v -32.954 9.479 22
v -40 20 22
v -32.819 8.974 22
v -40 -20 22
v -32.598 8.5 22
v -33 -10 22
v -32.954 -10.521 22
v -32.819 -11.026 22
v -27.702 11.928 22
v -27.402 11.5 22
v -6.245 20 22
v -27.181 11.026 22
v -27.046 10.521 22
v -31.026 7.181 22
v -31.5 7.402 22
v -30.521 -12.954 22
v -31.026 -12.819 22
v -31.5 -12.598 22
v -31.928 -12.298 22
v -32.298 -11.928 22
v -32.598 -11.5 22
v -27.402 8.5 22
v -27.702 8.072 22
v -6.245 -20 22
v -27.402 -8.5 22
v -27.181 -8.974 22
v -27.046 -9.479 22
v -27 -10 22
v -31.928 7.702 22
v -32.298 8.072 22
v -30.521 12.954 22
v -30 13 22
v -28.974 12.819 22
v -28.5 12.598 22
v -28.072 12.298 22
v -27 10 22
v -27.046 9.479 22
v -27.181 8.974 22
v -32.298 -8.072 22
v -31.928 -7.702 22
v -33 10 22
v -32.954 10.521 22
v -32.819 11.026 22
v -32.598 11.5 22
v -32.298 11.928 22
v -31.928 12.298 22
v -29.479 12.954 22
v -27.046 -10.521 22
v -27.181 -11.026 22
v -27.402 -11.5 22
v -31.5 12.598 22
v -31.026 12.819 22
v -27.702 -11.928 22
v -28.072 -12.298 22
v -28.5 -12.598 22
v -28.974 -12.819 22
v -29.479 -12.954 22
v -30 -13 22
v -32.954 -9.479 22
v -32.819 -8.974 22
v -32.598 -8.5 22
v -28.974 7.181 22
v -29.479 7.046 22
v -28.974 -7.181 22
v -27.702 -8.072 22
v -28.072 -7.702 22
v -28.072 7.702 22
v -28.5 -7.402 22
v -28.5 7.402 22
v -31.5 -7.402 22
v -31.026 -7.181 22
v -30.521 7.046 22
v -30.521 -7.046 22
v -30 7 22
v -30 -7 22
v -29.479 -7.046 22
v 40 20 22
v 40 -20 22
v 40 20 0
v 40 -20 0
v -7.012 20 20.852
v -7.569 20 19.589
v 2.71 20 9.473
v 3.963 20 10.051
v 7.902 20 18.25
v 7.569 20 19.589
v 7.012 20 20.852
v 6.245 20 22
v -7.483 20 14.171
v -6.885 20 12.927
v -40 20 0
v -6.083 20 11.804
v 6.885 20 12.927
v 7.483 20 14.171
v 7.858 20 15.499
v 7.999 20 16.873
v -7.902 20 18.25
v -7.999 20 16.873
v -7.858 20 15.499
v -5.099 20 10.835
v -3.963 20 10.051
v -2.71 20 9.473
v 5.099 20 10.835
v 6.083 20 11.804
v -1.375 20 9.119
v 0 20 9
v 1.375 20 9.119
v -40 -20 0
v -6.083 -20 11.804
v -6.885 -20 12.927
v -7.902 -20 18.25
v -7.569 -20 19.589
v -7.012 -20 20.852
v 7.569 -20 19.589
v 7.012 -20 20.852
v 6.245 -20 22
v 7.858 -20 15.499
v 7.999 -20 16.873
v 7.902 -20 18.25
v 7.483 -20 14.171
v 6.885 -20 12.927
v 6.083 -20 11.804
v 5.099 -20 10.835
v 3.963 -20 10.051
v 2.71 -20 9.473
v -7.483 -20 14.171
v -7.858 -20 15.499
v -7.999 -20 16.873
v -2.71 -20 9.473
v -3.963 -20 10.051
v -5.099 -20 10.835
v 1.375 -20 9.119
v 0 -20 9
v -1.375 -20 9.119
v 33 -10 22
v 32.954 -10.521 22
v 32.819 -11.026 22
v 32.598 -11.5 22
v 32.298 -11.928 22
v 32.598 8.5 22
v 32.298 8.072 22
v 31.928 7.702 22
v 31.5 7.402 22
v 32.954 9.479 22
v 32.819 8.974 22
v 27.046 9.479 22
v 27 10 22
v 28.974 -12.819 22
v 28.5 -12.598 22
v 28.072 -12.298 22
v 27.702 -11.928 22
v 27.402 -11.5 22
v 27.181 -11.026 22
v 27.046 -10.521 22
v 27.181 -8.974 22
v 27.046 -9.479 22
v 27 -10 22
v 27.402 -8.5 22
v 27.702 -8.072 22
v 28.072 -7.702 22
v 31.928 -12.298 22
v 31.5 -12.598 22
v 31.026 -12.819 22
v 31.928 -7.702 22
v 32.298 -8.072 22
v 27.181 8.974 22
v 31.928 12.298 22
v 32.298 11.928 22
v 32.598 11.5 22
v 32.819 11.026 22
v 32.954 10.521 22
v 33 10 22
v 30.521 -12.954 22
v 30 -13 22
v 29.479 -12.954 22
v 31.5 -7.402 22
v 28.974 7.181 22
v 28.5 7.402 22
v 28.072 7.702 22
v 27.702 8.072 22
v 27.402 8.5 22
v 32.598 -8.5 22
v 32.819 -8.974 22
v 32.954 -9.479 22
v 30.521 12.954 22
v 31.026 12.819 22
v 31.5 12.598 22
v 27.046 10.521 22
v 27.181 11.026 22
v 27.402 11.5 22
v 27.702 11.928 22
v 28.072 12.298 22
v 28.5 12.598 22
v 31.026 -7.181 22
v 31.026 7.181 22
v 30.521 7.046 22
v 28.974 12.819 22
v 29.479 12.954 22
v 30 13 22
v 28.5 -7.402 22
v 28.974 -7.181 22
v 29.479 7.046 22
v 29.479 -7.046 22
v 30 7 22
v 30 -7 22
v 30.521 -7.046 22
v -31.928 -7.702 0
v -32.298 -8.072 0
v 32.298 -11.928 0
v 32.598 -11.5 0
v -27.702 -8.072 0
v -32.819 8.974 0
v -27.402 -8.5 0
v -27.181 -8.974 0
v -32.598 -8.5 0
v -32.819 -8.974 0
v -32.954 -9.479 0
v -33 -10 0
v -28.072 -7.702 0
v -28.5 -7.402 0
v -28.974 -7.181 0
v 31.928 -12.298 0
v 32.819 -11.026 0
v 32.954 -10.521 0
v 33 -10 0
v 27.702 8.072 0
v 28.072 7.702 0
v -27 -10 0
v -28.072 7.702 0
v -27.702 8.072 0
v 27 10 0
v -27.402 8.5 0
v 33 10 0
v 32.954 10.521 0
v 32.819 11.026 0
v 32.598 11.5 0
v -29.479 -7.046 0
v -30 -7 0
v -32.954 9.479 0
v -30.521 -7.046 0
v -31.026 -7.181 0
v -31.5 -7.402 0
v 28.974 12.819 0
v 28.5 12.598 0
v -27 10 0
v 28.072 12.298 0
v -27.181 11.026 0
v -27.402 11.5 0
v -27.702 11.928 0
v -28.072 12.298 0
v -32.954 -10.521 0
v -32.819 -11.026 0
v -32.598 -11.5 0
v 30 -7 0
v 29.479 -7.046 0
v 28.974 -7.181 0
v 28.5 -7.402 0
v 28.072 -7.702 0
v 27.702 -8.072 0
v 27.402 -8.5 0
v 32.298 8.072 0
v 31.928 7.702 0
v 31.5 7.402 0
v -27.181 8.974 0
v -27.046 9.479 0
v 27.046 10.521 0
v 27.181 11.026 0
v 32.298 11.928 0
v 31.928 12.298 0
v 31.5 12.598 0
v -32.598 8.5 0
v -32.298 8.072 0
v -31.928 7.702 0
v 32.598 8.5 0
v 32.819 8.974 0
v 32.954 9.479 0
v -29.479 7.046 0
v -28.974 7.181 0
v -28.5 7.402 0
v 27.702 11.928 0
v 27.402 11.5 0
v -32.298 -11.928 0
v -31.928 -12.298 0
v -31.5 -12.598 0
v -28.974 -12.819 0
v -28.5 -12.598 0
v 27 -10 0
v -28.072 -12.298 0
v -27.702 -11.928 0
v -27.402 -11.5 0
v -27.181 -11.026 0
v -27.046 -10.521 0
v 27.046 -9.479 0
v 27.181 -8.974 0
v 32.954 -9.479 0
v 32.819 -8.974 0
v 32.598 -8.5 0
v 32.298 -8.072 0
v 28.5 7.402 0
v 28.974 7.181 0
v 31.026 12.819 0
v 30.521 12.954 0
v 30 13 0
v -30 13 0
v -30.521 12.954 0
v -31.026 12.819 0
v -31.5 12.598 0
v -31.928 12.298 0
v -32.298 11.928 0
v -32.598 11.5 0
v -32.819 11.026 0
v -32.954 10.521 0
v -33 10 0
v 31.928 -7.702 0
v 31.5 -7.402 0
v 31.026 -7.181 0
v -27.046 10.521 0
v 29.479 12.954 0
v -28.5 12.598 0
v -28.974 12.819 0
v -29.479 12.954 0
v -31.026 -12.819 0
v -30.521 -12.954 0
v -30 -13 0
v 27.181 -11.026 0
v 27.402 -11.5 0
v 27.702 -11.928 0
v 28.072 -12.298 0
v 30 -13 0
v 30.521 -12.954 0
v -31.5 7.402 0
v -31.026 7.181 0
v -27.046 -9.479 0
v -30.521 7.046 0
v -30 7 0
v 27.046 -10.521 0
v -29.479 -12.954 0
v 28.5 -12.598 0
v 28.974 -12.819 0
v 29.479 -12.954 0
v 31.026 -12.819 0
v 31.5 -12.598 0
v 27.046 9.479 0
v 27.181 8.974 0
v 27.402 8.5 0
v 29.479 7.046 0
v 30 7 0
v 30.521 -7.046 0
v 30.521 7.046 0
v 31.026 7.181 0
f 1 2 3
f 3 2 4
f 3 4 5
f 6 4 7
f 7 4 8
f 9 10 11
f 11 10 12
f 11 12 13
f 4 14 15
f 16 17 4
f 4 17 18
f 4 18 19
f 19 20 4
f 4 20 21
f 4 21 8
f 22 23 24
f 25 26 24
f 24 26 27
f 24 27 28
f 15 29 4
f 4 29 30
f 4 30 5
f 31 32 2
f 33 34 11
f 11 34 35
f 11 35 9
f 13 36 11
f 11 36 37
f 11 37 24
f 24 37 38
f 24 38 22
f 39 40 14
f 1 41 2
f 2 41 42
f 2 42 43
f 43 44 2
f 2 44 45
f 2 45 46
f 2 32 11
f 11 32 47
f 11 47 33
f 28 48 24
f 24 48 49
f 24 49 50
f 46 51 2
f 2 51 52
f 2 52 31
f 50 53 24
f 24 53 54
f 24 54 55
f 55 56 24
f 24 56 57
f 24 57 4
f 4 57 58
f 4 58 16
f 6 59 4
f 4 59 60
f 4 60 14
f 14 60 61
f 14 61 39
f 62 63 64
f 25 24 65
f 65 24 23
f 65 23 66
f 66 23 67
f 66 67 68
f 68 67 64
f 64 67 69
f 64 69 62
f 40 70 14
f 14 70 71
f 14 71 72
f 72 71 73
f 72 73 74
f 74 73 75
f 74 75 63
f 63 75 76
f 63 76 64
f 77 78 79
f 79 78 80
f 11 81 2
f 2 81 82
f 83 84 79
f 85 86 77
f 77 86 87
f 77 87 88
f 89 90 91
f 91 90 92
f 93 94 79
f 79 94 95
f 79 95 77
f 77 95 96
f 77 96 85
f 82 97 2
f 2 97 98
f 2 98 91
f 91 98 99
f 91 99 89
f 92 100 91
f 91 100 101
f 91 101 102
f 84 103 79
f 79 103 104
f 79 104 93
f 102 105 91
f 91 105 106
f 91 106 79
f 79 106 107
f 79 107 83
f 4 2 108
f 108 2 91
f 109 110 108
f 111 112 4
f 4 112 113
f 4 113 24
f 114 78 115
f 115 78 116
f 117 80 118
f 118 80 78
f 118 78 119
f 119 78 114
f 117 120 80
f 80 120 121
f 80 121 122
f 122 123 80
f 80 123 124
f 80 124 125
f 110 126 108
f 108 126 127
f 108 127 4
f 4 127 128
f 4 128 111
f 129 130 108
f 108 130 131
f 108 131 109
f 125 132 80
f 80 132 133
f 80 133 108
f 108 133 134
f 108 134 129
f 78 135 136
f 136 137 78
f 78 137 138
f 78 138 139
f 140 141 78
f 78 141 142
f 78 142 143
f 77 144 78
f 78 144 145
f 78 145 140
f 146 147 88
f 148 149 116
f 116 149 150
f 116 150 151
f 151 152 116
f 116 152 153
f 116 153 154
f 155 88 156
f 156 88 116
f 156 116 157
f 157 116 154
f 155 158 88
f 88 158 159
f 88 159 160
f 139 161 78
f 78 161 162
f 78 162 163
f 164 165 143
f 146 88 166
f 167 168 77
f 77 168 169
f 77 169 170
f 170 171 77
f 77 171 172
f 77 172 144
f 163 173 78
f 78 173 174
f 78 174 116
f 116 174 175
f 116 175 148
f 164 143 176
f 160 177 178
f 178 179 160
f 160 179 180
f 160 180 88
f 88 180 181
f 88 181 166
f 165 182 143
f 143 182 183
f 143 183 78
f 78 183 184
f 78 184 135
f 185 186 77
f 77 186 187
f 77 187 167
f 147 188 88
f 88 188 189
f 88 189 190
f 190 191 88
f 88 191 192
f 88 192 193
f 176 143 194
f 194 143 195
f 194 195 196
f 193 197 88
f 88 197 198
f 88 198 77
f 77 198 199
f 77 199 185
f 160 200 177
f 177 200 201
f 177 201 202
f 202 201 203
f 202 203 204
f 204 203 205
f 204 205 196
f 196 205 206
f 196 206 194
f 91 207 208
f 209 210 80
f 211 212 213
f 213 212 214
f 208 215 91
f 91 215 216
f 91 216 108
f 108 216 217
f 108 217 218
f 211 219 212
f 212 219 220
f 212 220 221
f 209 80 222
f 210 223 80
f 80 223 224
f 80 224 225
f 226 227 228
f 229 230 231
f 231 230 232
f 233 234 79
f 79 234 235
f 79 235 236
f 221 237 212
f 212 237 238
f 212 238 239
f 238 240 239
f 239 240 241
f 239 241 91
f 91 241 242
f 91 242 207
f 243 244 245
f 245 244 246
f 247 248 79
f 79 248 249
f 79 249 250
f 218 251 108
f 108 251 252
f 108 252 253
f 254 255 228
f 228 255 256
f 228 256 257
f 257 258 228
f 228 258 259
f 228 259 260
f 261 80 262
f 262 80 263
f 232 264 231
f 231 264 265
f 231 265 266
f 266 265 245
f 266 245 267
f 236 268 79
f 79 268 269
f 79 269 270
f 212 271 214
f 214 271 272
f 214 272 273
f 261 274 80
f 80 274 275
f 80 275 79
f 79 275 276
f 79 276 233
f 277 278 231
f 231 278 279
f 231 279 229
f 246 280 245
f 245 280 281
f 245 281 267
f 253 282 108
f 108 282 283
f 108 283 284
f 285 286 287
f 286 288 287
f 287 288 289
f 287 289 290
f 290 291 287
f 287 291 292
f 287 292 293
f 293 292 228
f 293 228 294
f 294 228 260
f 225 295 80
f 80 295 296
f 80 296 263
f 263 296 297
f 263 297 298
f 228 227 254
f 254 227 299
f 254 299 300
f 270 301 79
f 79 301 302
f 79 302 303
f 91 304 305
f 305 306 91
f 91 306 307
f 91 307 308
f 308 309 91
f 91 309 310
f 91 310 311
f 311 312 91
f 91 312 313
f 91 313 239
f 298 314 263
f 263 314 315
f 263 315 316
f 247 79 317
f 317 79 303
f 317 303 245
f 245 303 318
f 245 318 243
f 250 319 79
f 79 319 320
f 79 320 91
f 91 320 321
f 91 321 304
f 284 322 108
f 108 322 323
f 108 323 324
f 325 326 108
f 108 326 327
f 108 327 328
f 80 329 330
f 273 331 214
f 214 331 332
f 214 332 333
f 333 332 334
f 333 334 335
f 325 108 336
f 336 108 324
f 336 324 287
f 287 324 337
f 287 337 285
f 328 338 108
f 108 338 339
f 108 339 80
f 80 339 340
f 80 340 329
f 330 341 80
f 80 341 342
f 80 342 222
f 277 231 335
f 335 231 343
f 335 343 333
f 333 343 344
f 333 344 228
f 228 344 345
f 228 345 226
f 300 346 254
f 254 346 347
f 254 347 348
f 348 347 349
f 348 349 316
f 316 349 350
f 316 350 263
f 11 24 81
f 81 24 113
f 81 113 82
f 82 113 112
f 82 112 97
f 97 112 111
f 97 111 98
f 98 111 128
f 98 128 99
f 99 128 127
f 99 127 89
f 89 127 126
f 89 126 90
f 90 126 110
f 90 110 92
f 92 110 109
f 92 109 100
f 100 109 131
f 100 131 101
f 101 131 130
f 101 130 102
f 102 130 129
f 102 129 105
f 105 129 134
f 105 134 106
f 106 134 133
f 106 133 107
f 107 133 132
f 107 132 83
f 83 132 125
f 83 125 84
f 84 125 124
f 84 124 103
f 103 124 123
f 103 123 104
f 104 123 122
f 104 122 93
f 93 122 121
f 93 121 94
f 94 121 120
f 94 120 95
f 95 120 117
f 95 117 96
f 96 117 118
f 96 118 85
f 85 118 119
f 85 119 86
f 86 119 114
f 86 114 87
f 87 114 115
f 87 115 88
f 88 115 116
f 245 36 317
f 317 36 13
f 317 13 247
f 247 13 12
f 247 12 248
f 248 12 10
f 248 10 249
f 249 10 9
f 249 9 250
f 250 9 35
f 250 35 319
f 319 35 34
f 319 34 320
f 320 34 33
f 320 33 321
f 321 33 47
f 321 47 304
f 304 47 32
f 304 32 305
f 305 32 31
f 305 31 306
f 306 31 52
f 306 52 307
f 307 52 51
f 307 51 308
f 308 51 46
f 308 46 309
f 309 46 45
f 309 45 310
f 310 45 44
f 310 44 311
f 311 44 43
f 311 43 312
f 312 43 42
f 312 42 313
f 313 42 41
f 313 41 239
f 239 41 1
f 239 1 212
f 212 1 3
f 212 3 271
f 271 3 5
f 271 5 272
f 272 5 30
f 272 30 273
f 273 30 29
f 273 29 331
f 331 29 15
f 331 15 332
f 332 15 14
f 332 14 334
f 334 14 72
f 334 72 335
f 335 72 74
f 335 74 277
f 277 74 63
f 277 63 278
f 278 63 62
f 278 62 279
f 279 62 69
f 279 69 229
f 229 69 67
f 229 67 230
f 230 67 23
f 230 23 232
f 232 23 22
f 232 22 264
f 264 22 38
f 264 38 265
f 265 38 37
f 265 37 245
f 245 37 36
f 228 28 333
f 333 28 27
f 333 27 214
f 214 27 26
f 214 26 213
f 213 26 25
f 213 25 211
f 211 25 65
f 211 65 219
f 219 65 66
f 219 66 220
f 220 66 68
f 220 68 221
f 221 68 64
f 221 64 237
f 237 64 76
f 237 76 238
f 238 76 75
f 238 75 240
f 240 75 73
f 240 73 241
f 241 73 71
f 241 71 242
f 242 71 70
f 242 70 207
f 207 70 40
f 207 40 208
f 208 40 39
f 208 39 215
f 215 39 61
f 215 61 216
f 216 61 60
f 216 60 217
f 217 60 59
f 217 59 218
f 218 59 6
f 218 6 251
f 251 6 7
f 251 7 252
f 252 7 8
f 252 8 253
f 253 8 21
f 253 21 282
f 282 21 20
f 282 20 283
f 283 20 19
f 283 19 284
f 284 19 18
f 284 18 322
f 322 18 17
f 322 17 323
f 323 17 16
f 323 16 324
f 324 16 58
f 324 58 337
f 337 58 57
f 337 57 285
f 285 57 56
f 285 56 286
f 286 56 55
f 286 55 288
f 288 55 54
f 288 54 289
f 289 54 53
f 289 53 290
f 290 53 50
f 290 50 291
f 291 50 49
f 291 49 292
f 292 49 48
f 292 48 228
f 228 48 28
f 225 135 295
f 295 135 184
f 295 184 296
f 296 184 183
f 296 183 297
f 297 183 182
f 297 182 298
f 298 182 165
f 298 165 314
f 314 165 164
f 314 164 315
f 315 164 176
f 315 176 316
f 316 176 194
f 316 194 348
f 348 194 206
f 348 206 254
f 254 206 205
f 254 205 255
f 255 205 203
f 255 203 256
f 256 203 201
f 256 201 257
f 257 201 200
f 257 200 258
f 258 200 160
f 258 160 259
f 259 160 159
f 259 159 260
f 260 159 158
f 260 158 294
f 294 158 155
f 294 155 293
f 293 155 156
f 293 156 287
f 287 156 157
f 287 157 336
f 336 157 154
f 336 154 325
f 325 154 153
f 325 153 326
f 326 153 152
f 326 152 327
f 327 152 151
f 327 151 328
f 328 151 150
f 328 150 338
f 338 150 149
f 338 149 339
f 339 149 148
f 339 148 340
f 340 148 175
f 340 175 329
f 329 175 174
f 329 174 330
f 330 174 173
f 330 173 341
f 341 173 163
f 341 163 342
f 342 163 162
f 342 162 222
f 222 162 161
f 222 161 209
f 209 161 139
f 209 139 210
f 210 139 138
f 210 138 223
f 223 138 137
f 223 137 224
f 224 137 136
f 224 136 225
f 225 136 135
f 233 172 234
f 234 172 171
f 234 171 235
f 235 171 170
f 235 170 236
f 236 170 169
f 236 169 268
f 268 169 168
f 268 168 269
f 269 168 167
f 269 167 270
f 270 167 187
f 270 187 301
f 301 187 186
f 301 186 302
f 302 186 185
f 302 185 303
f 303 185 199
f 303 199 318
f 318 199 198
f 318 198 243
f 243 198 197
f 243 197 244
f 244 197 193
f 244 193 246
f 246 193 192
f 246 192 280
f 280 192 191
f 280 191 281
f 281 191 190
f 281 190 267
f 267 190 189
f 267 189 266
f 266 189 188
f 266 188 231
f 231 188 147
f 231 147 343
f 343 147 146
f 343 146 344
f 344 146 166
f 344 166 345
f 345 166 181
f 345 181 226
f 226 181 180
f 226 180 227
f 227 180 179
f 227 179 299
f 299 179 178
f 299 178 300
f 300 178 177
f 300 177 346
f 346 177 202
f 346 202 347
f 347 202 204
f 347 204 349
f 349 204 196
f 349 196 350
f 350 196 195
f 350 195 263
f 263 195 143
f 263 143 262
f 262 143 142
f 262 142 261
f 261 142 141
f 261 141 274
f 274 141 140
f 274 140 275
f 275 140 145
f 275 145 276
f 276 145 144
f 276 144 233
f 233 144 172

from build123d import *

# Parameters (mm, degrees)
SCHIZZO1_W                   = 80
SCHIZZO1_H                   = 40
ESTRUSIONE_ESTRUSIONE1_DEPTH = 22
SCHIZZO2_R                   = 8
TAGLIO_ESTRUSIONE1_DEPTH     = 61.695963622
SCHIZZO3_R                   = 3
TAGLIO_ESTRUSIONE2_DEPTH     = 50.839743178


with BuildPart() as part:
    # Schizzo1 → Estrusione-Estrusione1 (new body)
    with BuildSketch(Plane.XY):
        Rectangle(SCHIZZO1_W, SCHIZZO1_H)
    extrude(amount=ESTRUSIONE_ESTRUSIONE1_DEPTH)

    # Schizzo2 → Taglio-Estrusione1 (cut, through all)
    with BuildSketch(Plane.XZ.offset(20)):
        with Locations((0, 17)):
            Circle(SCHIZZO2_R)
    extrude(amount=-TAGLIO_ESTRUSIONE1_DEPTH, mode=Mode.SUBTRACT)

    # Schizzo3 → Taglio-Estrusione2 (cut, through all)
    with BuildSketch(Plane.XY.offset(22)):
        with Locations((-30, 10)):
            Circle(SCHIZZO3_R)
        with Locations(Location((-30, -10, 0), (0, 0, 180))):
            Circle(SCHIZZO3_R)
        with Locations((30, -10)):
            Circle(SCHIZZO3_R)
        with Locations(Location((30, 10, 0), (0, 0, 180))):
            Circle(SCHIZZO3_R)
    extrude(amount=-TAGLIO_ESTRUSIONE2_DEPTH, mode=Mode.SUBTRACT)


solid = part.part
